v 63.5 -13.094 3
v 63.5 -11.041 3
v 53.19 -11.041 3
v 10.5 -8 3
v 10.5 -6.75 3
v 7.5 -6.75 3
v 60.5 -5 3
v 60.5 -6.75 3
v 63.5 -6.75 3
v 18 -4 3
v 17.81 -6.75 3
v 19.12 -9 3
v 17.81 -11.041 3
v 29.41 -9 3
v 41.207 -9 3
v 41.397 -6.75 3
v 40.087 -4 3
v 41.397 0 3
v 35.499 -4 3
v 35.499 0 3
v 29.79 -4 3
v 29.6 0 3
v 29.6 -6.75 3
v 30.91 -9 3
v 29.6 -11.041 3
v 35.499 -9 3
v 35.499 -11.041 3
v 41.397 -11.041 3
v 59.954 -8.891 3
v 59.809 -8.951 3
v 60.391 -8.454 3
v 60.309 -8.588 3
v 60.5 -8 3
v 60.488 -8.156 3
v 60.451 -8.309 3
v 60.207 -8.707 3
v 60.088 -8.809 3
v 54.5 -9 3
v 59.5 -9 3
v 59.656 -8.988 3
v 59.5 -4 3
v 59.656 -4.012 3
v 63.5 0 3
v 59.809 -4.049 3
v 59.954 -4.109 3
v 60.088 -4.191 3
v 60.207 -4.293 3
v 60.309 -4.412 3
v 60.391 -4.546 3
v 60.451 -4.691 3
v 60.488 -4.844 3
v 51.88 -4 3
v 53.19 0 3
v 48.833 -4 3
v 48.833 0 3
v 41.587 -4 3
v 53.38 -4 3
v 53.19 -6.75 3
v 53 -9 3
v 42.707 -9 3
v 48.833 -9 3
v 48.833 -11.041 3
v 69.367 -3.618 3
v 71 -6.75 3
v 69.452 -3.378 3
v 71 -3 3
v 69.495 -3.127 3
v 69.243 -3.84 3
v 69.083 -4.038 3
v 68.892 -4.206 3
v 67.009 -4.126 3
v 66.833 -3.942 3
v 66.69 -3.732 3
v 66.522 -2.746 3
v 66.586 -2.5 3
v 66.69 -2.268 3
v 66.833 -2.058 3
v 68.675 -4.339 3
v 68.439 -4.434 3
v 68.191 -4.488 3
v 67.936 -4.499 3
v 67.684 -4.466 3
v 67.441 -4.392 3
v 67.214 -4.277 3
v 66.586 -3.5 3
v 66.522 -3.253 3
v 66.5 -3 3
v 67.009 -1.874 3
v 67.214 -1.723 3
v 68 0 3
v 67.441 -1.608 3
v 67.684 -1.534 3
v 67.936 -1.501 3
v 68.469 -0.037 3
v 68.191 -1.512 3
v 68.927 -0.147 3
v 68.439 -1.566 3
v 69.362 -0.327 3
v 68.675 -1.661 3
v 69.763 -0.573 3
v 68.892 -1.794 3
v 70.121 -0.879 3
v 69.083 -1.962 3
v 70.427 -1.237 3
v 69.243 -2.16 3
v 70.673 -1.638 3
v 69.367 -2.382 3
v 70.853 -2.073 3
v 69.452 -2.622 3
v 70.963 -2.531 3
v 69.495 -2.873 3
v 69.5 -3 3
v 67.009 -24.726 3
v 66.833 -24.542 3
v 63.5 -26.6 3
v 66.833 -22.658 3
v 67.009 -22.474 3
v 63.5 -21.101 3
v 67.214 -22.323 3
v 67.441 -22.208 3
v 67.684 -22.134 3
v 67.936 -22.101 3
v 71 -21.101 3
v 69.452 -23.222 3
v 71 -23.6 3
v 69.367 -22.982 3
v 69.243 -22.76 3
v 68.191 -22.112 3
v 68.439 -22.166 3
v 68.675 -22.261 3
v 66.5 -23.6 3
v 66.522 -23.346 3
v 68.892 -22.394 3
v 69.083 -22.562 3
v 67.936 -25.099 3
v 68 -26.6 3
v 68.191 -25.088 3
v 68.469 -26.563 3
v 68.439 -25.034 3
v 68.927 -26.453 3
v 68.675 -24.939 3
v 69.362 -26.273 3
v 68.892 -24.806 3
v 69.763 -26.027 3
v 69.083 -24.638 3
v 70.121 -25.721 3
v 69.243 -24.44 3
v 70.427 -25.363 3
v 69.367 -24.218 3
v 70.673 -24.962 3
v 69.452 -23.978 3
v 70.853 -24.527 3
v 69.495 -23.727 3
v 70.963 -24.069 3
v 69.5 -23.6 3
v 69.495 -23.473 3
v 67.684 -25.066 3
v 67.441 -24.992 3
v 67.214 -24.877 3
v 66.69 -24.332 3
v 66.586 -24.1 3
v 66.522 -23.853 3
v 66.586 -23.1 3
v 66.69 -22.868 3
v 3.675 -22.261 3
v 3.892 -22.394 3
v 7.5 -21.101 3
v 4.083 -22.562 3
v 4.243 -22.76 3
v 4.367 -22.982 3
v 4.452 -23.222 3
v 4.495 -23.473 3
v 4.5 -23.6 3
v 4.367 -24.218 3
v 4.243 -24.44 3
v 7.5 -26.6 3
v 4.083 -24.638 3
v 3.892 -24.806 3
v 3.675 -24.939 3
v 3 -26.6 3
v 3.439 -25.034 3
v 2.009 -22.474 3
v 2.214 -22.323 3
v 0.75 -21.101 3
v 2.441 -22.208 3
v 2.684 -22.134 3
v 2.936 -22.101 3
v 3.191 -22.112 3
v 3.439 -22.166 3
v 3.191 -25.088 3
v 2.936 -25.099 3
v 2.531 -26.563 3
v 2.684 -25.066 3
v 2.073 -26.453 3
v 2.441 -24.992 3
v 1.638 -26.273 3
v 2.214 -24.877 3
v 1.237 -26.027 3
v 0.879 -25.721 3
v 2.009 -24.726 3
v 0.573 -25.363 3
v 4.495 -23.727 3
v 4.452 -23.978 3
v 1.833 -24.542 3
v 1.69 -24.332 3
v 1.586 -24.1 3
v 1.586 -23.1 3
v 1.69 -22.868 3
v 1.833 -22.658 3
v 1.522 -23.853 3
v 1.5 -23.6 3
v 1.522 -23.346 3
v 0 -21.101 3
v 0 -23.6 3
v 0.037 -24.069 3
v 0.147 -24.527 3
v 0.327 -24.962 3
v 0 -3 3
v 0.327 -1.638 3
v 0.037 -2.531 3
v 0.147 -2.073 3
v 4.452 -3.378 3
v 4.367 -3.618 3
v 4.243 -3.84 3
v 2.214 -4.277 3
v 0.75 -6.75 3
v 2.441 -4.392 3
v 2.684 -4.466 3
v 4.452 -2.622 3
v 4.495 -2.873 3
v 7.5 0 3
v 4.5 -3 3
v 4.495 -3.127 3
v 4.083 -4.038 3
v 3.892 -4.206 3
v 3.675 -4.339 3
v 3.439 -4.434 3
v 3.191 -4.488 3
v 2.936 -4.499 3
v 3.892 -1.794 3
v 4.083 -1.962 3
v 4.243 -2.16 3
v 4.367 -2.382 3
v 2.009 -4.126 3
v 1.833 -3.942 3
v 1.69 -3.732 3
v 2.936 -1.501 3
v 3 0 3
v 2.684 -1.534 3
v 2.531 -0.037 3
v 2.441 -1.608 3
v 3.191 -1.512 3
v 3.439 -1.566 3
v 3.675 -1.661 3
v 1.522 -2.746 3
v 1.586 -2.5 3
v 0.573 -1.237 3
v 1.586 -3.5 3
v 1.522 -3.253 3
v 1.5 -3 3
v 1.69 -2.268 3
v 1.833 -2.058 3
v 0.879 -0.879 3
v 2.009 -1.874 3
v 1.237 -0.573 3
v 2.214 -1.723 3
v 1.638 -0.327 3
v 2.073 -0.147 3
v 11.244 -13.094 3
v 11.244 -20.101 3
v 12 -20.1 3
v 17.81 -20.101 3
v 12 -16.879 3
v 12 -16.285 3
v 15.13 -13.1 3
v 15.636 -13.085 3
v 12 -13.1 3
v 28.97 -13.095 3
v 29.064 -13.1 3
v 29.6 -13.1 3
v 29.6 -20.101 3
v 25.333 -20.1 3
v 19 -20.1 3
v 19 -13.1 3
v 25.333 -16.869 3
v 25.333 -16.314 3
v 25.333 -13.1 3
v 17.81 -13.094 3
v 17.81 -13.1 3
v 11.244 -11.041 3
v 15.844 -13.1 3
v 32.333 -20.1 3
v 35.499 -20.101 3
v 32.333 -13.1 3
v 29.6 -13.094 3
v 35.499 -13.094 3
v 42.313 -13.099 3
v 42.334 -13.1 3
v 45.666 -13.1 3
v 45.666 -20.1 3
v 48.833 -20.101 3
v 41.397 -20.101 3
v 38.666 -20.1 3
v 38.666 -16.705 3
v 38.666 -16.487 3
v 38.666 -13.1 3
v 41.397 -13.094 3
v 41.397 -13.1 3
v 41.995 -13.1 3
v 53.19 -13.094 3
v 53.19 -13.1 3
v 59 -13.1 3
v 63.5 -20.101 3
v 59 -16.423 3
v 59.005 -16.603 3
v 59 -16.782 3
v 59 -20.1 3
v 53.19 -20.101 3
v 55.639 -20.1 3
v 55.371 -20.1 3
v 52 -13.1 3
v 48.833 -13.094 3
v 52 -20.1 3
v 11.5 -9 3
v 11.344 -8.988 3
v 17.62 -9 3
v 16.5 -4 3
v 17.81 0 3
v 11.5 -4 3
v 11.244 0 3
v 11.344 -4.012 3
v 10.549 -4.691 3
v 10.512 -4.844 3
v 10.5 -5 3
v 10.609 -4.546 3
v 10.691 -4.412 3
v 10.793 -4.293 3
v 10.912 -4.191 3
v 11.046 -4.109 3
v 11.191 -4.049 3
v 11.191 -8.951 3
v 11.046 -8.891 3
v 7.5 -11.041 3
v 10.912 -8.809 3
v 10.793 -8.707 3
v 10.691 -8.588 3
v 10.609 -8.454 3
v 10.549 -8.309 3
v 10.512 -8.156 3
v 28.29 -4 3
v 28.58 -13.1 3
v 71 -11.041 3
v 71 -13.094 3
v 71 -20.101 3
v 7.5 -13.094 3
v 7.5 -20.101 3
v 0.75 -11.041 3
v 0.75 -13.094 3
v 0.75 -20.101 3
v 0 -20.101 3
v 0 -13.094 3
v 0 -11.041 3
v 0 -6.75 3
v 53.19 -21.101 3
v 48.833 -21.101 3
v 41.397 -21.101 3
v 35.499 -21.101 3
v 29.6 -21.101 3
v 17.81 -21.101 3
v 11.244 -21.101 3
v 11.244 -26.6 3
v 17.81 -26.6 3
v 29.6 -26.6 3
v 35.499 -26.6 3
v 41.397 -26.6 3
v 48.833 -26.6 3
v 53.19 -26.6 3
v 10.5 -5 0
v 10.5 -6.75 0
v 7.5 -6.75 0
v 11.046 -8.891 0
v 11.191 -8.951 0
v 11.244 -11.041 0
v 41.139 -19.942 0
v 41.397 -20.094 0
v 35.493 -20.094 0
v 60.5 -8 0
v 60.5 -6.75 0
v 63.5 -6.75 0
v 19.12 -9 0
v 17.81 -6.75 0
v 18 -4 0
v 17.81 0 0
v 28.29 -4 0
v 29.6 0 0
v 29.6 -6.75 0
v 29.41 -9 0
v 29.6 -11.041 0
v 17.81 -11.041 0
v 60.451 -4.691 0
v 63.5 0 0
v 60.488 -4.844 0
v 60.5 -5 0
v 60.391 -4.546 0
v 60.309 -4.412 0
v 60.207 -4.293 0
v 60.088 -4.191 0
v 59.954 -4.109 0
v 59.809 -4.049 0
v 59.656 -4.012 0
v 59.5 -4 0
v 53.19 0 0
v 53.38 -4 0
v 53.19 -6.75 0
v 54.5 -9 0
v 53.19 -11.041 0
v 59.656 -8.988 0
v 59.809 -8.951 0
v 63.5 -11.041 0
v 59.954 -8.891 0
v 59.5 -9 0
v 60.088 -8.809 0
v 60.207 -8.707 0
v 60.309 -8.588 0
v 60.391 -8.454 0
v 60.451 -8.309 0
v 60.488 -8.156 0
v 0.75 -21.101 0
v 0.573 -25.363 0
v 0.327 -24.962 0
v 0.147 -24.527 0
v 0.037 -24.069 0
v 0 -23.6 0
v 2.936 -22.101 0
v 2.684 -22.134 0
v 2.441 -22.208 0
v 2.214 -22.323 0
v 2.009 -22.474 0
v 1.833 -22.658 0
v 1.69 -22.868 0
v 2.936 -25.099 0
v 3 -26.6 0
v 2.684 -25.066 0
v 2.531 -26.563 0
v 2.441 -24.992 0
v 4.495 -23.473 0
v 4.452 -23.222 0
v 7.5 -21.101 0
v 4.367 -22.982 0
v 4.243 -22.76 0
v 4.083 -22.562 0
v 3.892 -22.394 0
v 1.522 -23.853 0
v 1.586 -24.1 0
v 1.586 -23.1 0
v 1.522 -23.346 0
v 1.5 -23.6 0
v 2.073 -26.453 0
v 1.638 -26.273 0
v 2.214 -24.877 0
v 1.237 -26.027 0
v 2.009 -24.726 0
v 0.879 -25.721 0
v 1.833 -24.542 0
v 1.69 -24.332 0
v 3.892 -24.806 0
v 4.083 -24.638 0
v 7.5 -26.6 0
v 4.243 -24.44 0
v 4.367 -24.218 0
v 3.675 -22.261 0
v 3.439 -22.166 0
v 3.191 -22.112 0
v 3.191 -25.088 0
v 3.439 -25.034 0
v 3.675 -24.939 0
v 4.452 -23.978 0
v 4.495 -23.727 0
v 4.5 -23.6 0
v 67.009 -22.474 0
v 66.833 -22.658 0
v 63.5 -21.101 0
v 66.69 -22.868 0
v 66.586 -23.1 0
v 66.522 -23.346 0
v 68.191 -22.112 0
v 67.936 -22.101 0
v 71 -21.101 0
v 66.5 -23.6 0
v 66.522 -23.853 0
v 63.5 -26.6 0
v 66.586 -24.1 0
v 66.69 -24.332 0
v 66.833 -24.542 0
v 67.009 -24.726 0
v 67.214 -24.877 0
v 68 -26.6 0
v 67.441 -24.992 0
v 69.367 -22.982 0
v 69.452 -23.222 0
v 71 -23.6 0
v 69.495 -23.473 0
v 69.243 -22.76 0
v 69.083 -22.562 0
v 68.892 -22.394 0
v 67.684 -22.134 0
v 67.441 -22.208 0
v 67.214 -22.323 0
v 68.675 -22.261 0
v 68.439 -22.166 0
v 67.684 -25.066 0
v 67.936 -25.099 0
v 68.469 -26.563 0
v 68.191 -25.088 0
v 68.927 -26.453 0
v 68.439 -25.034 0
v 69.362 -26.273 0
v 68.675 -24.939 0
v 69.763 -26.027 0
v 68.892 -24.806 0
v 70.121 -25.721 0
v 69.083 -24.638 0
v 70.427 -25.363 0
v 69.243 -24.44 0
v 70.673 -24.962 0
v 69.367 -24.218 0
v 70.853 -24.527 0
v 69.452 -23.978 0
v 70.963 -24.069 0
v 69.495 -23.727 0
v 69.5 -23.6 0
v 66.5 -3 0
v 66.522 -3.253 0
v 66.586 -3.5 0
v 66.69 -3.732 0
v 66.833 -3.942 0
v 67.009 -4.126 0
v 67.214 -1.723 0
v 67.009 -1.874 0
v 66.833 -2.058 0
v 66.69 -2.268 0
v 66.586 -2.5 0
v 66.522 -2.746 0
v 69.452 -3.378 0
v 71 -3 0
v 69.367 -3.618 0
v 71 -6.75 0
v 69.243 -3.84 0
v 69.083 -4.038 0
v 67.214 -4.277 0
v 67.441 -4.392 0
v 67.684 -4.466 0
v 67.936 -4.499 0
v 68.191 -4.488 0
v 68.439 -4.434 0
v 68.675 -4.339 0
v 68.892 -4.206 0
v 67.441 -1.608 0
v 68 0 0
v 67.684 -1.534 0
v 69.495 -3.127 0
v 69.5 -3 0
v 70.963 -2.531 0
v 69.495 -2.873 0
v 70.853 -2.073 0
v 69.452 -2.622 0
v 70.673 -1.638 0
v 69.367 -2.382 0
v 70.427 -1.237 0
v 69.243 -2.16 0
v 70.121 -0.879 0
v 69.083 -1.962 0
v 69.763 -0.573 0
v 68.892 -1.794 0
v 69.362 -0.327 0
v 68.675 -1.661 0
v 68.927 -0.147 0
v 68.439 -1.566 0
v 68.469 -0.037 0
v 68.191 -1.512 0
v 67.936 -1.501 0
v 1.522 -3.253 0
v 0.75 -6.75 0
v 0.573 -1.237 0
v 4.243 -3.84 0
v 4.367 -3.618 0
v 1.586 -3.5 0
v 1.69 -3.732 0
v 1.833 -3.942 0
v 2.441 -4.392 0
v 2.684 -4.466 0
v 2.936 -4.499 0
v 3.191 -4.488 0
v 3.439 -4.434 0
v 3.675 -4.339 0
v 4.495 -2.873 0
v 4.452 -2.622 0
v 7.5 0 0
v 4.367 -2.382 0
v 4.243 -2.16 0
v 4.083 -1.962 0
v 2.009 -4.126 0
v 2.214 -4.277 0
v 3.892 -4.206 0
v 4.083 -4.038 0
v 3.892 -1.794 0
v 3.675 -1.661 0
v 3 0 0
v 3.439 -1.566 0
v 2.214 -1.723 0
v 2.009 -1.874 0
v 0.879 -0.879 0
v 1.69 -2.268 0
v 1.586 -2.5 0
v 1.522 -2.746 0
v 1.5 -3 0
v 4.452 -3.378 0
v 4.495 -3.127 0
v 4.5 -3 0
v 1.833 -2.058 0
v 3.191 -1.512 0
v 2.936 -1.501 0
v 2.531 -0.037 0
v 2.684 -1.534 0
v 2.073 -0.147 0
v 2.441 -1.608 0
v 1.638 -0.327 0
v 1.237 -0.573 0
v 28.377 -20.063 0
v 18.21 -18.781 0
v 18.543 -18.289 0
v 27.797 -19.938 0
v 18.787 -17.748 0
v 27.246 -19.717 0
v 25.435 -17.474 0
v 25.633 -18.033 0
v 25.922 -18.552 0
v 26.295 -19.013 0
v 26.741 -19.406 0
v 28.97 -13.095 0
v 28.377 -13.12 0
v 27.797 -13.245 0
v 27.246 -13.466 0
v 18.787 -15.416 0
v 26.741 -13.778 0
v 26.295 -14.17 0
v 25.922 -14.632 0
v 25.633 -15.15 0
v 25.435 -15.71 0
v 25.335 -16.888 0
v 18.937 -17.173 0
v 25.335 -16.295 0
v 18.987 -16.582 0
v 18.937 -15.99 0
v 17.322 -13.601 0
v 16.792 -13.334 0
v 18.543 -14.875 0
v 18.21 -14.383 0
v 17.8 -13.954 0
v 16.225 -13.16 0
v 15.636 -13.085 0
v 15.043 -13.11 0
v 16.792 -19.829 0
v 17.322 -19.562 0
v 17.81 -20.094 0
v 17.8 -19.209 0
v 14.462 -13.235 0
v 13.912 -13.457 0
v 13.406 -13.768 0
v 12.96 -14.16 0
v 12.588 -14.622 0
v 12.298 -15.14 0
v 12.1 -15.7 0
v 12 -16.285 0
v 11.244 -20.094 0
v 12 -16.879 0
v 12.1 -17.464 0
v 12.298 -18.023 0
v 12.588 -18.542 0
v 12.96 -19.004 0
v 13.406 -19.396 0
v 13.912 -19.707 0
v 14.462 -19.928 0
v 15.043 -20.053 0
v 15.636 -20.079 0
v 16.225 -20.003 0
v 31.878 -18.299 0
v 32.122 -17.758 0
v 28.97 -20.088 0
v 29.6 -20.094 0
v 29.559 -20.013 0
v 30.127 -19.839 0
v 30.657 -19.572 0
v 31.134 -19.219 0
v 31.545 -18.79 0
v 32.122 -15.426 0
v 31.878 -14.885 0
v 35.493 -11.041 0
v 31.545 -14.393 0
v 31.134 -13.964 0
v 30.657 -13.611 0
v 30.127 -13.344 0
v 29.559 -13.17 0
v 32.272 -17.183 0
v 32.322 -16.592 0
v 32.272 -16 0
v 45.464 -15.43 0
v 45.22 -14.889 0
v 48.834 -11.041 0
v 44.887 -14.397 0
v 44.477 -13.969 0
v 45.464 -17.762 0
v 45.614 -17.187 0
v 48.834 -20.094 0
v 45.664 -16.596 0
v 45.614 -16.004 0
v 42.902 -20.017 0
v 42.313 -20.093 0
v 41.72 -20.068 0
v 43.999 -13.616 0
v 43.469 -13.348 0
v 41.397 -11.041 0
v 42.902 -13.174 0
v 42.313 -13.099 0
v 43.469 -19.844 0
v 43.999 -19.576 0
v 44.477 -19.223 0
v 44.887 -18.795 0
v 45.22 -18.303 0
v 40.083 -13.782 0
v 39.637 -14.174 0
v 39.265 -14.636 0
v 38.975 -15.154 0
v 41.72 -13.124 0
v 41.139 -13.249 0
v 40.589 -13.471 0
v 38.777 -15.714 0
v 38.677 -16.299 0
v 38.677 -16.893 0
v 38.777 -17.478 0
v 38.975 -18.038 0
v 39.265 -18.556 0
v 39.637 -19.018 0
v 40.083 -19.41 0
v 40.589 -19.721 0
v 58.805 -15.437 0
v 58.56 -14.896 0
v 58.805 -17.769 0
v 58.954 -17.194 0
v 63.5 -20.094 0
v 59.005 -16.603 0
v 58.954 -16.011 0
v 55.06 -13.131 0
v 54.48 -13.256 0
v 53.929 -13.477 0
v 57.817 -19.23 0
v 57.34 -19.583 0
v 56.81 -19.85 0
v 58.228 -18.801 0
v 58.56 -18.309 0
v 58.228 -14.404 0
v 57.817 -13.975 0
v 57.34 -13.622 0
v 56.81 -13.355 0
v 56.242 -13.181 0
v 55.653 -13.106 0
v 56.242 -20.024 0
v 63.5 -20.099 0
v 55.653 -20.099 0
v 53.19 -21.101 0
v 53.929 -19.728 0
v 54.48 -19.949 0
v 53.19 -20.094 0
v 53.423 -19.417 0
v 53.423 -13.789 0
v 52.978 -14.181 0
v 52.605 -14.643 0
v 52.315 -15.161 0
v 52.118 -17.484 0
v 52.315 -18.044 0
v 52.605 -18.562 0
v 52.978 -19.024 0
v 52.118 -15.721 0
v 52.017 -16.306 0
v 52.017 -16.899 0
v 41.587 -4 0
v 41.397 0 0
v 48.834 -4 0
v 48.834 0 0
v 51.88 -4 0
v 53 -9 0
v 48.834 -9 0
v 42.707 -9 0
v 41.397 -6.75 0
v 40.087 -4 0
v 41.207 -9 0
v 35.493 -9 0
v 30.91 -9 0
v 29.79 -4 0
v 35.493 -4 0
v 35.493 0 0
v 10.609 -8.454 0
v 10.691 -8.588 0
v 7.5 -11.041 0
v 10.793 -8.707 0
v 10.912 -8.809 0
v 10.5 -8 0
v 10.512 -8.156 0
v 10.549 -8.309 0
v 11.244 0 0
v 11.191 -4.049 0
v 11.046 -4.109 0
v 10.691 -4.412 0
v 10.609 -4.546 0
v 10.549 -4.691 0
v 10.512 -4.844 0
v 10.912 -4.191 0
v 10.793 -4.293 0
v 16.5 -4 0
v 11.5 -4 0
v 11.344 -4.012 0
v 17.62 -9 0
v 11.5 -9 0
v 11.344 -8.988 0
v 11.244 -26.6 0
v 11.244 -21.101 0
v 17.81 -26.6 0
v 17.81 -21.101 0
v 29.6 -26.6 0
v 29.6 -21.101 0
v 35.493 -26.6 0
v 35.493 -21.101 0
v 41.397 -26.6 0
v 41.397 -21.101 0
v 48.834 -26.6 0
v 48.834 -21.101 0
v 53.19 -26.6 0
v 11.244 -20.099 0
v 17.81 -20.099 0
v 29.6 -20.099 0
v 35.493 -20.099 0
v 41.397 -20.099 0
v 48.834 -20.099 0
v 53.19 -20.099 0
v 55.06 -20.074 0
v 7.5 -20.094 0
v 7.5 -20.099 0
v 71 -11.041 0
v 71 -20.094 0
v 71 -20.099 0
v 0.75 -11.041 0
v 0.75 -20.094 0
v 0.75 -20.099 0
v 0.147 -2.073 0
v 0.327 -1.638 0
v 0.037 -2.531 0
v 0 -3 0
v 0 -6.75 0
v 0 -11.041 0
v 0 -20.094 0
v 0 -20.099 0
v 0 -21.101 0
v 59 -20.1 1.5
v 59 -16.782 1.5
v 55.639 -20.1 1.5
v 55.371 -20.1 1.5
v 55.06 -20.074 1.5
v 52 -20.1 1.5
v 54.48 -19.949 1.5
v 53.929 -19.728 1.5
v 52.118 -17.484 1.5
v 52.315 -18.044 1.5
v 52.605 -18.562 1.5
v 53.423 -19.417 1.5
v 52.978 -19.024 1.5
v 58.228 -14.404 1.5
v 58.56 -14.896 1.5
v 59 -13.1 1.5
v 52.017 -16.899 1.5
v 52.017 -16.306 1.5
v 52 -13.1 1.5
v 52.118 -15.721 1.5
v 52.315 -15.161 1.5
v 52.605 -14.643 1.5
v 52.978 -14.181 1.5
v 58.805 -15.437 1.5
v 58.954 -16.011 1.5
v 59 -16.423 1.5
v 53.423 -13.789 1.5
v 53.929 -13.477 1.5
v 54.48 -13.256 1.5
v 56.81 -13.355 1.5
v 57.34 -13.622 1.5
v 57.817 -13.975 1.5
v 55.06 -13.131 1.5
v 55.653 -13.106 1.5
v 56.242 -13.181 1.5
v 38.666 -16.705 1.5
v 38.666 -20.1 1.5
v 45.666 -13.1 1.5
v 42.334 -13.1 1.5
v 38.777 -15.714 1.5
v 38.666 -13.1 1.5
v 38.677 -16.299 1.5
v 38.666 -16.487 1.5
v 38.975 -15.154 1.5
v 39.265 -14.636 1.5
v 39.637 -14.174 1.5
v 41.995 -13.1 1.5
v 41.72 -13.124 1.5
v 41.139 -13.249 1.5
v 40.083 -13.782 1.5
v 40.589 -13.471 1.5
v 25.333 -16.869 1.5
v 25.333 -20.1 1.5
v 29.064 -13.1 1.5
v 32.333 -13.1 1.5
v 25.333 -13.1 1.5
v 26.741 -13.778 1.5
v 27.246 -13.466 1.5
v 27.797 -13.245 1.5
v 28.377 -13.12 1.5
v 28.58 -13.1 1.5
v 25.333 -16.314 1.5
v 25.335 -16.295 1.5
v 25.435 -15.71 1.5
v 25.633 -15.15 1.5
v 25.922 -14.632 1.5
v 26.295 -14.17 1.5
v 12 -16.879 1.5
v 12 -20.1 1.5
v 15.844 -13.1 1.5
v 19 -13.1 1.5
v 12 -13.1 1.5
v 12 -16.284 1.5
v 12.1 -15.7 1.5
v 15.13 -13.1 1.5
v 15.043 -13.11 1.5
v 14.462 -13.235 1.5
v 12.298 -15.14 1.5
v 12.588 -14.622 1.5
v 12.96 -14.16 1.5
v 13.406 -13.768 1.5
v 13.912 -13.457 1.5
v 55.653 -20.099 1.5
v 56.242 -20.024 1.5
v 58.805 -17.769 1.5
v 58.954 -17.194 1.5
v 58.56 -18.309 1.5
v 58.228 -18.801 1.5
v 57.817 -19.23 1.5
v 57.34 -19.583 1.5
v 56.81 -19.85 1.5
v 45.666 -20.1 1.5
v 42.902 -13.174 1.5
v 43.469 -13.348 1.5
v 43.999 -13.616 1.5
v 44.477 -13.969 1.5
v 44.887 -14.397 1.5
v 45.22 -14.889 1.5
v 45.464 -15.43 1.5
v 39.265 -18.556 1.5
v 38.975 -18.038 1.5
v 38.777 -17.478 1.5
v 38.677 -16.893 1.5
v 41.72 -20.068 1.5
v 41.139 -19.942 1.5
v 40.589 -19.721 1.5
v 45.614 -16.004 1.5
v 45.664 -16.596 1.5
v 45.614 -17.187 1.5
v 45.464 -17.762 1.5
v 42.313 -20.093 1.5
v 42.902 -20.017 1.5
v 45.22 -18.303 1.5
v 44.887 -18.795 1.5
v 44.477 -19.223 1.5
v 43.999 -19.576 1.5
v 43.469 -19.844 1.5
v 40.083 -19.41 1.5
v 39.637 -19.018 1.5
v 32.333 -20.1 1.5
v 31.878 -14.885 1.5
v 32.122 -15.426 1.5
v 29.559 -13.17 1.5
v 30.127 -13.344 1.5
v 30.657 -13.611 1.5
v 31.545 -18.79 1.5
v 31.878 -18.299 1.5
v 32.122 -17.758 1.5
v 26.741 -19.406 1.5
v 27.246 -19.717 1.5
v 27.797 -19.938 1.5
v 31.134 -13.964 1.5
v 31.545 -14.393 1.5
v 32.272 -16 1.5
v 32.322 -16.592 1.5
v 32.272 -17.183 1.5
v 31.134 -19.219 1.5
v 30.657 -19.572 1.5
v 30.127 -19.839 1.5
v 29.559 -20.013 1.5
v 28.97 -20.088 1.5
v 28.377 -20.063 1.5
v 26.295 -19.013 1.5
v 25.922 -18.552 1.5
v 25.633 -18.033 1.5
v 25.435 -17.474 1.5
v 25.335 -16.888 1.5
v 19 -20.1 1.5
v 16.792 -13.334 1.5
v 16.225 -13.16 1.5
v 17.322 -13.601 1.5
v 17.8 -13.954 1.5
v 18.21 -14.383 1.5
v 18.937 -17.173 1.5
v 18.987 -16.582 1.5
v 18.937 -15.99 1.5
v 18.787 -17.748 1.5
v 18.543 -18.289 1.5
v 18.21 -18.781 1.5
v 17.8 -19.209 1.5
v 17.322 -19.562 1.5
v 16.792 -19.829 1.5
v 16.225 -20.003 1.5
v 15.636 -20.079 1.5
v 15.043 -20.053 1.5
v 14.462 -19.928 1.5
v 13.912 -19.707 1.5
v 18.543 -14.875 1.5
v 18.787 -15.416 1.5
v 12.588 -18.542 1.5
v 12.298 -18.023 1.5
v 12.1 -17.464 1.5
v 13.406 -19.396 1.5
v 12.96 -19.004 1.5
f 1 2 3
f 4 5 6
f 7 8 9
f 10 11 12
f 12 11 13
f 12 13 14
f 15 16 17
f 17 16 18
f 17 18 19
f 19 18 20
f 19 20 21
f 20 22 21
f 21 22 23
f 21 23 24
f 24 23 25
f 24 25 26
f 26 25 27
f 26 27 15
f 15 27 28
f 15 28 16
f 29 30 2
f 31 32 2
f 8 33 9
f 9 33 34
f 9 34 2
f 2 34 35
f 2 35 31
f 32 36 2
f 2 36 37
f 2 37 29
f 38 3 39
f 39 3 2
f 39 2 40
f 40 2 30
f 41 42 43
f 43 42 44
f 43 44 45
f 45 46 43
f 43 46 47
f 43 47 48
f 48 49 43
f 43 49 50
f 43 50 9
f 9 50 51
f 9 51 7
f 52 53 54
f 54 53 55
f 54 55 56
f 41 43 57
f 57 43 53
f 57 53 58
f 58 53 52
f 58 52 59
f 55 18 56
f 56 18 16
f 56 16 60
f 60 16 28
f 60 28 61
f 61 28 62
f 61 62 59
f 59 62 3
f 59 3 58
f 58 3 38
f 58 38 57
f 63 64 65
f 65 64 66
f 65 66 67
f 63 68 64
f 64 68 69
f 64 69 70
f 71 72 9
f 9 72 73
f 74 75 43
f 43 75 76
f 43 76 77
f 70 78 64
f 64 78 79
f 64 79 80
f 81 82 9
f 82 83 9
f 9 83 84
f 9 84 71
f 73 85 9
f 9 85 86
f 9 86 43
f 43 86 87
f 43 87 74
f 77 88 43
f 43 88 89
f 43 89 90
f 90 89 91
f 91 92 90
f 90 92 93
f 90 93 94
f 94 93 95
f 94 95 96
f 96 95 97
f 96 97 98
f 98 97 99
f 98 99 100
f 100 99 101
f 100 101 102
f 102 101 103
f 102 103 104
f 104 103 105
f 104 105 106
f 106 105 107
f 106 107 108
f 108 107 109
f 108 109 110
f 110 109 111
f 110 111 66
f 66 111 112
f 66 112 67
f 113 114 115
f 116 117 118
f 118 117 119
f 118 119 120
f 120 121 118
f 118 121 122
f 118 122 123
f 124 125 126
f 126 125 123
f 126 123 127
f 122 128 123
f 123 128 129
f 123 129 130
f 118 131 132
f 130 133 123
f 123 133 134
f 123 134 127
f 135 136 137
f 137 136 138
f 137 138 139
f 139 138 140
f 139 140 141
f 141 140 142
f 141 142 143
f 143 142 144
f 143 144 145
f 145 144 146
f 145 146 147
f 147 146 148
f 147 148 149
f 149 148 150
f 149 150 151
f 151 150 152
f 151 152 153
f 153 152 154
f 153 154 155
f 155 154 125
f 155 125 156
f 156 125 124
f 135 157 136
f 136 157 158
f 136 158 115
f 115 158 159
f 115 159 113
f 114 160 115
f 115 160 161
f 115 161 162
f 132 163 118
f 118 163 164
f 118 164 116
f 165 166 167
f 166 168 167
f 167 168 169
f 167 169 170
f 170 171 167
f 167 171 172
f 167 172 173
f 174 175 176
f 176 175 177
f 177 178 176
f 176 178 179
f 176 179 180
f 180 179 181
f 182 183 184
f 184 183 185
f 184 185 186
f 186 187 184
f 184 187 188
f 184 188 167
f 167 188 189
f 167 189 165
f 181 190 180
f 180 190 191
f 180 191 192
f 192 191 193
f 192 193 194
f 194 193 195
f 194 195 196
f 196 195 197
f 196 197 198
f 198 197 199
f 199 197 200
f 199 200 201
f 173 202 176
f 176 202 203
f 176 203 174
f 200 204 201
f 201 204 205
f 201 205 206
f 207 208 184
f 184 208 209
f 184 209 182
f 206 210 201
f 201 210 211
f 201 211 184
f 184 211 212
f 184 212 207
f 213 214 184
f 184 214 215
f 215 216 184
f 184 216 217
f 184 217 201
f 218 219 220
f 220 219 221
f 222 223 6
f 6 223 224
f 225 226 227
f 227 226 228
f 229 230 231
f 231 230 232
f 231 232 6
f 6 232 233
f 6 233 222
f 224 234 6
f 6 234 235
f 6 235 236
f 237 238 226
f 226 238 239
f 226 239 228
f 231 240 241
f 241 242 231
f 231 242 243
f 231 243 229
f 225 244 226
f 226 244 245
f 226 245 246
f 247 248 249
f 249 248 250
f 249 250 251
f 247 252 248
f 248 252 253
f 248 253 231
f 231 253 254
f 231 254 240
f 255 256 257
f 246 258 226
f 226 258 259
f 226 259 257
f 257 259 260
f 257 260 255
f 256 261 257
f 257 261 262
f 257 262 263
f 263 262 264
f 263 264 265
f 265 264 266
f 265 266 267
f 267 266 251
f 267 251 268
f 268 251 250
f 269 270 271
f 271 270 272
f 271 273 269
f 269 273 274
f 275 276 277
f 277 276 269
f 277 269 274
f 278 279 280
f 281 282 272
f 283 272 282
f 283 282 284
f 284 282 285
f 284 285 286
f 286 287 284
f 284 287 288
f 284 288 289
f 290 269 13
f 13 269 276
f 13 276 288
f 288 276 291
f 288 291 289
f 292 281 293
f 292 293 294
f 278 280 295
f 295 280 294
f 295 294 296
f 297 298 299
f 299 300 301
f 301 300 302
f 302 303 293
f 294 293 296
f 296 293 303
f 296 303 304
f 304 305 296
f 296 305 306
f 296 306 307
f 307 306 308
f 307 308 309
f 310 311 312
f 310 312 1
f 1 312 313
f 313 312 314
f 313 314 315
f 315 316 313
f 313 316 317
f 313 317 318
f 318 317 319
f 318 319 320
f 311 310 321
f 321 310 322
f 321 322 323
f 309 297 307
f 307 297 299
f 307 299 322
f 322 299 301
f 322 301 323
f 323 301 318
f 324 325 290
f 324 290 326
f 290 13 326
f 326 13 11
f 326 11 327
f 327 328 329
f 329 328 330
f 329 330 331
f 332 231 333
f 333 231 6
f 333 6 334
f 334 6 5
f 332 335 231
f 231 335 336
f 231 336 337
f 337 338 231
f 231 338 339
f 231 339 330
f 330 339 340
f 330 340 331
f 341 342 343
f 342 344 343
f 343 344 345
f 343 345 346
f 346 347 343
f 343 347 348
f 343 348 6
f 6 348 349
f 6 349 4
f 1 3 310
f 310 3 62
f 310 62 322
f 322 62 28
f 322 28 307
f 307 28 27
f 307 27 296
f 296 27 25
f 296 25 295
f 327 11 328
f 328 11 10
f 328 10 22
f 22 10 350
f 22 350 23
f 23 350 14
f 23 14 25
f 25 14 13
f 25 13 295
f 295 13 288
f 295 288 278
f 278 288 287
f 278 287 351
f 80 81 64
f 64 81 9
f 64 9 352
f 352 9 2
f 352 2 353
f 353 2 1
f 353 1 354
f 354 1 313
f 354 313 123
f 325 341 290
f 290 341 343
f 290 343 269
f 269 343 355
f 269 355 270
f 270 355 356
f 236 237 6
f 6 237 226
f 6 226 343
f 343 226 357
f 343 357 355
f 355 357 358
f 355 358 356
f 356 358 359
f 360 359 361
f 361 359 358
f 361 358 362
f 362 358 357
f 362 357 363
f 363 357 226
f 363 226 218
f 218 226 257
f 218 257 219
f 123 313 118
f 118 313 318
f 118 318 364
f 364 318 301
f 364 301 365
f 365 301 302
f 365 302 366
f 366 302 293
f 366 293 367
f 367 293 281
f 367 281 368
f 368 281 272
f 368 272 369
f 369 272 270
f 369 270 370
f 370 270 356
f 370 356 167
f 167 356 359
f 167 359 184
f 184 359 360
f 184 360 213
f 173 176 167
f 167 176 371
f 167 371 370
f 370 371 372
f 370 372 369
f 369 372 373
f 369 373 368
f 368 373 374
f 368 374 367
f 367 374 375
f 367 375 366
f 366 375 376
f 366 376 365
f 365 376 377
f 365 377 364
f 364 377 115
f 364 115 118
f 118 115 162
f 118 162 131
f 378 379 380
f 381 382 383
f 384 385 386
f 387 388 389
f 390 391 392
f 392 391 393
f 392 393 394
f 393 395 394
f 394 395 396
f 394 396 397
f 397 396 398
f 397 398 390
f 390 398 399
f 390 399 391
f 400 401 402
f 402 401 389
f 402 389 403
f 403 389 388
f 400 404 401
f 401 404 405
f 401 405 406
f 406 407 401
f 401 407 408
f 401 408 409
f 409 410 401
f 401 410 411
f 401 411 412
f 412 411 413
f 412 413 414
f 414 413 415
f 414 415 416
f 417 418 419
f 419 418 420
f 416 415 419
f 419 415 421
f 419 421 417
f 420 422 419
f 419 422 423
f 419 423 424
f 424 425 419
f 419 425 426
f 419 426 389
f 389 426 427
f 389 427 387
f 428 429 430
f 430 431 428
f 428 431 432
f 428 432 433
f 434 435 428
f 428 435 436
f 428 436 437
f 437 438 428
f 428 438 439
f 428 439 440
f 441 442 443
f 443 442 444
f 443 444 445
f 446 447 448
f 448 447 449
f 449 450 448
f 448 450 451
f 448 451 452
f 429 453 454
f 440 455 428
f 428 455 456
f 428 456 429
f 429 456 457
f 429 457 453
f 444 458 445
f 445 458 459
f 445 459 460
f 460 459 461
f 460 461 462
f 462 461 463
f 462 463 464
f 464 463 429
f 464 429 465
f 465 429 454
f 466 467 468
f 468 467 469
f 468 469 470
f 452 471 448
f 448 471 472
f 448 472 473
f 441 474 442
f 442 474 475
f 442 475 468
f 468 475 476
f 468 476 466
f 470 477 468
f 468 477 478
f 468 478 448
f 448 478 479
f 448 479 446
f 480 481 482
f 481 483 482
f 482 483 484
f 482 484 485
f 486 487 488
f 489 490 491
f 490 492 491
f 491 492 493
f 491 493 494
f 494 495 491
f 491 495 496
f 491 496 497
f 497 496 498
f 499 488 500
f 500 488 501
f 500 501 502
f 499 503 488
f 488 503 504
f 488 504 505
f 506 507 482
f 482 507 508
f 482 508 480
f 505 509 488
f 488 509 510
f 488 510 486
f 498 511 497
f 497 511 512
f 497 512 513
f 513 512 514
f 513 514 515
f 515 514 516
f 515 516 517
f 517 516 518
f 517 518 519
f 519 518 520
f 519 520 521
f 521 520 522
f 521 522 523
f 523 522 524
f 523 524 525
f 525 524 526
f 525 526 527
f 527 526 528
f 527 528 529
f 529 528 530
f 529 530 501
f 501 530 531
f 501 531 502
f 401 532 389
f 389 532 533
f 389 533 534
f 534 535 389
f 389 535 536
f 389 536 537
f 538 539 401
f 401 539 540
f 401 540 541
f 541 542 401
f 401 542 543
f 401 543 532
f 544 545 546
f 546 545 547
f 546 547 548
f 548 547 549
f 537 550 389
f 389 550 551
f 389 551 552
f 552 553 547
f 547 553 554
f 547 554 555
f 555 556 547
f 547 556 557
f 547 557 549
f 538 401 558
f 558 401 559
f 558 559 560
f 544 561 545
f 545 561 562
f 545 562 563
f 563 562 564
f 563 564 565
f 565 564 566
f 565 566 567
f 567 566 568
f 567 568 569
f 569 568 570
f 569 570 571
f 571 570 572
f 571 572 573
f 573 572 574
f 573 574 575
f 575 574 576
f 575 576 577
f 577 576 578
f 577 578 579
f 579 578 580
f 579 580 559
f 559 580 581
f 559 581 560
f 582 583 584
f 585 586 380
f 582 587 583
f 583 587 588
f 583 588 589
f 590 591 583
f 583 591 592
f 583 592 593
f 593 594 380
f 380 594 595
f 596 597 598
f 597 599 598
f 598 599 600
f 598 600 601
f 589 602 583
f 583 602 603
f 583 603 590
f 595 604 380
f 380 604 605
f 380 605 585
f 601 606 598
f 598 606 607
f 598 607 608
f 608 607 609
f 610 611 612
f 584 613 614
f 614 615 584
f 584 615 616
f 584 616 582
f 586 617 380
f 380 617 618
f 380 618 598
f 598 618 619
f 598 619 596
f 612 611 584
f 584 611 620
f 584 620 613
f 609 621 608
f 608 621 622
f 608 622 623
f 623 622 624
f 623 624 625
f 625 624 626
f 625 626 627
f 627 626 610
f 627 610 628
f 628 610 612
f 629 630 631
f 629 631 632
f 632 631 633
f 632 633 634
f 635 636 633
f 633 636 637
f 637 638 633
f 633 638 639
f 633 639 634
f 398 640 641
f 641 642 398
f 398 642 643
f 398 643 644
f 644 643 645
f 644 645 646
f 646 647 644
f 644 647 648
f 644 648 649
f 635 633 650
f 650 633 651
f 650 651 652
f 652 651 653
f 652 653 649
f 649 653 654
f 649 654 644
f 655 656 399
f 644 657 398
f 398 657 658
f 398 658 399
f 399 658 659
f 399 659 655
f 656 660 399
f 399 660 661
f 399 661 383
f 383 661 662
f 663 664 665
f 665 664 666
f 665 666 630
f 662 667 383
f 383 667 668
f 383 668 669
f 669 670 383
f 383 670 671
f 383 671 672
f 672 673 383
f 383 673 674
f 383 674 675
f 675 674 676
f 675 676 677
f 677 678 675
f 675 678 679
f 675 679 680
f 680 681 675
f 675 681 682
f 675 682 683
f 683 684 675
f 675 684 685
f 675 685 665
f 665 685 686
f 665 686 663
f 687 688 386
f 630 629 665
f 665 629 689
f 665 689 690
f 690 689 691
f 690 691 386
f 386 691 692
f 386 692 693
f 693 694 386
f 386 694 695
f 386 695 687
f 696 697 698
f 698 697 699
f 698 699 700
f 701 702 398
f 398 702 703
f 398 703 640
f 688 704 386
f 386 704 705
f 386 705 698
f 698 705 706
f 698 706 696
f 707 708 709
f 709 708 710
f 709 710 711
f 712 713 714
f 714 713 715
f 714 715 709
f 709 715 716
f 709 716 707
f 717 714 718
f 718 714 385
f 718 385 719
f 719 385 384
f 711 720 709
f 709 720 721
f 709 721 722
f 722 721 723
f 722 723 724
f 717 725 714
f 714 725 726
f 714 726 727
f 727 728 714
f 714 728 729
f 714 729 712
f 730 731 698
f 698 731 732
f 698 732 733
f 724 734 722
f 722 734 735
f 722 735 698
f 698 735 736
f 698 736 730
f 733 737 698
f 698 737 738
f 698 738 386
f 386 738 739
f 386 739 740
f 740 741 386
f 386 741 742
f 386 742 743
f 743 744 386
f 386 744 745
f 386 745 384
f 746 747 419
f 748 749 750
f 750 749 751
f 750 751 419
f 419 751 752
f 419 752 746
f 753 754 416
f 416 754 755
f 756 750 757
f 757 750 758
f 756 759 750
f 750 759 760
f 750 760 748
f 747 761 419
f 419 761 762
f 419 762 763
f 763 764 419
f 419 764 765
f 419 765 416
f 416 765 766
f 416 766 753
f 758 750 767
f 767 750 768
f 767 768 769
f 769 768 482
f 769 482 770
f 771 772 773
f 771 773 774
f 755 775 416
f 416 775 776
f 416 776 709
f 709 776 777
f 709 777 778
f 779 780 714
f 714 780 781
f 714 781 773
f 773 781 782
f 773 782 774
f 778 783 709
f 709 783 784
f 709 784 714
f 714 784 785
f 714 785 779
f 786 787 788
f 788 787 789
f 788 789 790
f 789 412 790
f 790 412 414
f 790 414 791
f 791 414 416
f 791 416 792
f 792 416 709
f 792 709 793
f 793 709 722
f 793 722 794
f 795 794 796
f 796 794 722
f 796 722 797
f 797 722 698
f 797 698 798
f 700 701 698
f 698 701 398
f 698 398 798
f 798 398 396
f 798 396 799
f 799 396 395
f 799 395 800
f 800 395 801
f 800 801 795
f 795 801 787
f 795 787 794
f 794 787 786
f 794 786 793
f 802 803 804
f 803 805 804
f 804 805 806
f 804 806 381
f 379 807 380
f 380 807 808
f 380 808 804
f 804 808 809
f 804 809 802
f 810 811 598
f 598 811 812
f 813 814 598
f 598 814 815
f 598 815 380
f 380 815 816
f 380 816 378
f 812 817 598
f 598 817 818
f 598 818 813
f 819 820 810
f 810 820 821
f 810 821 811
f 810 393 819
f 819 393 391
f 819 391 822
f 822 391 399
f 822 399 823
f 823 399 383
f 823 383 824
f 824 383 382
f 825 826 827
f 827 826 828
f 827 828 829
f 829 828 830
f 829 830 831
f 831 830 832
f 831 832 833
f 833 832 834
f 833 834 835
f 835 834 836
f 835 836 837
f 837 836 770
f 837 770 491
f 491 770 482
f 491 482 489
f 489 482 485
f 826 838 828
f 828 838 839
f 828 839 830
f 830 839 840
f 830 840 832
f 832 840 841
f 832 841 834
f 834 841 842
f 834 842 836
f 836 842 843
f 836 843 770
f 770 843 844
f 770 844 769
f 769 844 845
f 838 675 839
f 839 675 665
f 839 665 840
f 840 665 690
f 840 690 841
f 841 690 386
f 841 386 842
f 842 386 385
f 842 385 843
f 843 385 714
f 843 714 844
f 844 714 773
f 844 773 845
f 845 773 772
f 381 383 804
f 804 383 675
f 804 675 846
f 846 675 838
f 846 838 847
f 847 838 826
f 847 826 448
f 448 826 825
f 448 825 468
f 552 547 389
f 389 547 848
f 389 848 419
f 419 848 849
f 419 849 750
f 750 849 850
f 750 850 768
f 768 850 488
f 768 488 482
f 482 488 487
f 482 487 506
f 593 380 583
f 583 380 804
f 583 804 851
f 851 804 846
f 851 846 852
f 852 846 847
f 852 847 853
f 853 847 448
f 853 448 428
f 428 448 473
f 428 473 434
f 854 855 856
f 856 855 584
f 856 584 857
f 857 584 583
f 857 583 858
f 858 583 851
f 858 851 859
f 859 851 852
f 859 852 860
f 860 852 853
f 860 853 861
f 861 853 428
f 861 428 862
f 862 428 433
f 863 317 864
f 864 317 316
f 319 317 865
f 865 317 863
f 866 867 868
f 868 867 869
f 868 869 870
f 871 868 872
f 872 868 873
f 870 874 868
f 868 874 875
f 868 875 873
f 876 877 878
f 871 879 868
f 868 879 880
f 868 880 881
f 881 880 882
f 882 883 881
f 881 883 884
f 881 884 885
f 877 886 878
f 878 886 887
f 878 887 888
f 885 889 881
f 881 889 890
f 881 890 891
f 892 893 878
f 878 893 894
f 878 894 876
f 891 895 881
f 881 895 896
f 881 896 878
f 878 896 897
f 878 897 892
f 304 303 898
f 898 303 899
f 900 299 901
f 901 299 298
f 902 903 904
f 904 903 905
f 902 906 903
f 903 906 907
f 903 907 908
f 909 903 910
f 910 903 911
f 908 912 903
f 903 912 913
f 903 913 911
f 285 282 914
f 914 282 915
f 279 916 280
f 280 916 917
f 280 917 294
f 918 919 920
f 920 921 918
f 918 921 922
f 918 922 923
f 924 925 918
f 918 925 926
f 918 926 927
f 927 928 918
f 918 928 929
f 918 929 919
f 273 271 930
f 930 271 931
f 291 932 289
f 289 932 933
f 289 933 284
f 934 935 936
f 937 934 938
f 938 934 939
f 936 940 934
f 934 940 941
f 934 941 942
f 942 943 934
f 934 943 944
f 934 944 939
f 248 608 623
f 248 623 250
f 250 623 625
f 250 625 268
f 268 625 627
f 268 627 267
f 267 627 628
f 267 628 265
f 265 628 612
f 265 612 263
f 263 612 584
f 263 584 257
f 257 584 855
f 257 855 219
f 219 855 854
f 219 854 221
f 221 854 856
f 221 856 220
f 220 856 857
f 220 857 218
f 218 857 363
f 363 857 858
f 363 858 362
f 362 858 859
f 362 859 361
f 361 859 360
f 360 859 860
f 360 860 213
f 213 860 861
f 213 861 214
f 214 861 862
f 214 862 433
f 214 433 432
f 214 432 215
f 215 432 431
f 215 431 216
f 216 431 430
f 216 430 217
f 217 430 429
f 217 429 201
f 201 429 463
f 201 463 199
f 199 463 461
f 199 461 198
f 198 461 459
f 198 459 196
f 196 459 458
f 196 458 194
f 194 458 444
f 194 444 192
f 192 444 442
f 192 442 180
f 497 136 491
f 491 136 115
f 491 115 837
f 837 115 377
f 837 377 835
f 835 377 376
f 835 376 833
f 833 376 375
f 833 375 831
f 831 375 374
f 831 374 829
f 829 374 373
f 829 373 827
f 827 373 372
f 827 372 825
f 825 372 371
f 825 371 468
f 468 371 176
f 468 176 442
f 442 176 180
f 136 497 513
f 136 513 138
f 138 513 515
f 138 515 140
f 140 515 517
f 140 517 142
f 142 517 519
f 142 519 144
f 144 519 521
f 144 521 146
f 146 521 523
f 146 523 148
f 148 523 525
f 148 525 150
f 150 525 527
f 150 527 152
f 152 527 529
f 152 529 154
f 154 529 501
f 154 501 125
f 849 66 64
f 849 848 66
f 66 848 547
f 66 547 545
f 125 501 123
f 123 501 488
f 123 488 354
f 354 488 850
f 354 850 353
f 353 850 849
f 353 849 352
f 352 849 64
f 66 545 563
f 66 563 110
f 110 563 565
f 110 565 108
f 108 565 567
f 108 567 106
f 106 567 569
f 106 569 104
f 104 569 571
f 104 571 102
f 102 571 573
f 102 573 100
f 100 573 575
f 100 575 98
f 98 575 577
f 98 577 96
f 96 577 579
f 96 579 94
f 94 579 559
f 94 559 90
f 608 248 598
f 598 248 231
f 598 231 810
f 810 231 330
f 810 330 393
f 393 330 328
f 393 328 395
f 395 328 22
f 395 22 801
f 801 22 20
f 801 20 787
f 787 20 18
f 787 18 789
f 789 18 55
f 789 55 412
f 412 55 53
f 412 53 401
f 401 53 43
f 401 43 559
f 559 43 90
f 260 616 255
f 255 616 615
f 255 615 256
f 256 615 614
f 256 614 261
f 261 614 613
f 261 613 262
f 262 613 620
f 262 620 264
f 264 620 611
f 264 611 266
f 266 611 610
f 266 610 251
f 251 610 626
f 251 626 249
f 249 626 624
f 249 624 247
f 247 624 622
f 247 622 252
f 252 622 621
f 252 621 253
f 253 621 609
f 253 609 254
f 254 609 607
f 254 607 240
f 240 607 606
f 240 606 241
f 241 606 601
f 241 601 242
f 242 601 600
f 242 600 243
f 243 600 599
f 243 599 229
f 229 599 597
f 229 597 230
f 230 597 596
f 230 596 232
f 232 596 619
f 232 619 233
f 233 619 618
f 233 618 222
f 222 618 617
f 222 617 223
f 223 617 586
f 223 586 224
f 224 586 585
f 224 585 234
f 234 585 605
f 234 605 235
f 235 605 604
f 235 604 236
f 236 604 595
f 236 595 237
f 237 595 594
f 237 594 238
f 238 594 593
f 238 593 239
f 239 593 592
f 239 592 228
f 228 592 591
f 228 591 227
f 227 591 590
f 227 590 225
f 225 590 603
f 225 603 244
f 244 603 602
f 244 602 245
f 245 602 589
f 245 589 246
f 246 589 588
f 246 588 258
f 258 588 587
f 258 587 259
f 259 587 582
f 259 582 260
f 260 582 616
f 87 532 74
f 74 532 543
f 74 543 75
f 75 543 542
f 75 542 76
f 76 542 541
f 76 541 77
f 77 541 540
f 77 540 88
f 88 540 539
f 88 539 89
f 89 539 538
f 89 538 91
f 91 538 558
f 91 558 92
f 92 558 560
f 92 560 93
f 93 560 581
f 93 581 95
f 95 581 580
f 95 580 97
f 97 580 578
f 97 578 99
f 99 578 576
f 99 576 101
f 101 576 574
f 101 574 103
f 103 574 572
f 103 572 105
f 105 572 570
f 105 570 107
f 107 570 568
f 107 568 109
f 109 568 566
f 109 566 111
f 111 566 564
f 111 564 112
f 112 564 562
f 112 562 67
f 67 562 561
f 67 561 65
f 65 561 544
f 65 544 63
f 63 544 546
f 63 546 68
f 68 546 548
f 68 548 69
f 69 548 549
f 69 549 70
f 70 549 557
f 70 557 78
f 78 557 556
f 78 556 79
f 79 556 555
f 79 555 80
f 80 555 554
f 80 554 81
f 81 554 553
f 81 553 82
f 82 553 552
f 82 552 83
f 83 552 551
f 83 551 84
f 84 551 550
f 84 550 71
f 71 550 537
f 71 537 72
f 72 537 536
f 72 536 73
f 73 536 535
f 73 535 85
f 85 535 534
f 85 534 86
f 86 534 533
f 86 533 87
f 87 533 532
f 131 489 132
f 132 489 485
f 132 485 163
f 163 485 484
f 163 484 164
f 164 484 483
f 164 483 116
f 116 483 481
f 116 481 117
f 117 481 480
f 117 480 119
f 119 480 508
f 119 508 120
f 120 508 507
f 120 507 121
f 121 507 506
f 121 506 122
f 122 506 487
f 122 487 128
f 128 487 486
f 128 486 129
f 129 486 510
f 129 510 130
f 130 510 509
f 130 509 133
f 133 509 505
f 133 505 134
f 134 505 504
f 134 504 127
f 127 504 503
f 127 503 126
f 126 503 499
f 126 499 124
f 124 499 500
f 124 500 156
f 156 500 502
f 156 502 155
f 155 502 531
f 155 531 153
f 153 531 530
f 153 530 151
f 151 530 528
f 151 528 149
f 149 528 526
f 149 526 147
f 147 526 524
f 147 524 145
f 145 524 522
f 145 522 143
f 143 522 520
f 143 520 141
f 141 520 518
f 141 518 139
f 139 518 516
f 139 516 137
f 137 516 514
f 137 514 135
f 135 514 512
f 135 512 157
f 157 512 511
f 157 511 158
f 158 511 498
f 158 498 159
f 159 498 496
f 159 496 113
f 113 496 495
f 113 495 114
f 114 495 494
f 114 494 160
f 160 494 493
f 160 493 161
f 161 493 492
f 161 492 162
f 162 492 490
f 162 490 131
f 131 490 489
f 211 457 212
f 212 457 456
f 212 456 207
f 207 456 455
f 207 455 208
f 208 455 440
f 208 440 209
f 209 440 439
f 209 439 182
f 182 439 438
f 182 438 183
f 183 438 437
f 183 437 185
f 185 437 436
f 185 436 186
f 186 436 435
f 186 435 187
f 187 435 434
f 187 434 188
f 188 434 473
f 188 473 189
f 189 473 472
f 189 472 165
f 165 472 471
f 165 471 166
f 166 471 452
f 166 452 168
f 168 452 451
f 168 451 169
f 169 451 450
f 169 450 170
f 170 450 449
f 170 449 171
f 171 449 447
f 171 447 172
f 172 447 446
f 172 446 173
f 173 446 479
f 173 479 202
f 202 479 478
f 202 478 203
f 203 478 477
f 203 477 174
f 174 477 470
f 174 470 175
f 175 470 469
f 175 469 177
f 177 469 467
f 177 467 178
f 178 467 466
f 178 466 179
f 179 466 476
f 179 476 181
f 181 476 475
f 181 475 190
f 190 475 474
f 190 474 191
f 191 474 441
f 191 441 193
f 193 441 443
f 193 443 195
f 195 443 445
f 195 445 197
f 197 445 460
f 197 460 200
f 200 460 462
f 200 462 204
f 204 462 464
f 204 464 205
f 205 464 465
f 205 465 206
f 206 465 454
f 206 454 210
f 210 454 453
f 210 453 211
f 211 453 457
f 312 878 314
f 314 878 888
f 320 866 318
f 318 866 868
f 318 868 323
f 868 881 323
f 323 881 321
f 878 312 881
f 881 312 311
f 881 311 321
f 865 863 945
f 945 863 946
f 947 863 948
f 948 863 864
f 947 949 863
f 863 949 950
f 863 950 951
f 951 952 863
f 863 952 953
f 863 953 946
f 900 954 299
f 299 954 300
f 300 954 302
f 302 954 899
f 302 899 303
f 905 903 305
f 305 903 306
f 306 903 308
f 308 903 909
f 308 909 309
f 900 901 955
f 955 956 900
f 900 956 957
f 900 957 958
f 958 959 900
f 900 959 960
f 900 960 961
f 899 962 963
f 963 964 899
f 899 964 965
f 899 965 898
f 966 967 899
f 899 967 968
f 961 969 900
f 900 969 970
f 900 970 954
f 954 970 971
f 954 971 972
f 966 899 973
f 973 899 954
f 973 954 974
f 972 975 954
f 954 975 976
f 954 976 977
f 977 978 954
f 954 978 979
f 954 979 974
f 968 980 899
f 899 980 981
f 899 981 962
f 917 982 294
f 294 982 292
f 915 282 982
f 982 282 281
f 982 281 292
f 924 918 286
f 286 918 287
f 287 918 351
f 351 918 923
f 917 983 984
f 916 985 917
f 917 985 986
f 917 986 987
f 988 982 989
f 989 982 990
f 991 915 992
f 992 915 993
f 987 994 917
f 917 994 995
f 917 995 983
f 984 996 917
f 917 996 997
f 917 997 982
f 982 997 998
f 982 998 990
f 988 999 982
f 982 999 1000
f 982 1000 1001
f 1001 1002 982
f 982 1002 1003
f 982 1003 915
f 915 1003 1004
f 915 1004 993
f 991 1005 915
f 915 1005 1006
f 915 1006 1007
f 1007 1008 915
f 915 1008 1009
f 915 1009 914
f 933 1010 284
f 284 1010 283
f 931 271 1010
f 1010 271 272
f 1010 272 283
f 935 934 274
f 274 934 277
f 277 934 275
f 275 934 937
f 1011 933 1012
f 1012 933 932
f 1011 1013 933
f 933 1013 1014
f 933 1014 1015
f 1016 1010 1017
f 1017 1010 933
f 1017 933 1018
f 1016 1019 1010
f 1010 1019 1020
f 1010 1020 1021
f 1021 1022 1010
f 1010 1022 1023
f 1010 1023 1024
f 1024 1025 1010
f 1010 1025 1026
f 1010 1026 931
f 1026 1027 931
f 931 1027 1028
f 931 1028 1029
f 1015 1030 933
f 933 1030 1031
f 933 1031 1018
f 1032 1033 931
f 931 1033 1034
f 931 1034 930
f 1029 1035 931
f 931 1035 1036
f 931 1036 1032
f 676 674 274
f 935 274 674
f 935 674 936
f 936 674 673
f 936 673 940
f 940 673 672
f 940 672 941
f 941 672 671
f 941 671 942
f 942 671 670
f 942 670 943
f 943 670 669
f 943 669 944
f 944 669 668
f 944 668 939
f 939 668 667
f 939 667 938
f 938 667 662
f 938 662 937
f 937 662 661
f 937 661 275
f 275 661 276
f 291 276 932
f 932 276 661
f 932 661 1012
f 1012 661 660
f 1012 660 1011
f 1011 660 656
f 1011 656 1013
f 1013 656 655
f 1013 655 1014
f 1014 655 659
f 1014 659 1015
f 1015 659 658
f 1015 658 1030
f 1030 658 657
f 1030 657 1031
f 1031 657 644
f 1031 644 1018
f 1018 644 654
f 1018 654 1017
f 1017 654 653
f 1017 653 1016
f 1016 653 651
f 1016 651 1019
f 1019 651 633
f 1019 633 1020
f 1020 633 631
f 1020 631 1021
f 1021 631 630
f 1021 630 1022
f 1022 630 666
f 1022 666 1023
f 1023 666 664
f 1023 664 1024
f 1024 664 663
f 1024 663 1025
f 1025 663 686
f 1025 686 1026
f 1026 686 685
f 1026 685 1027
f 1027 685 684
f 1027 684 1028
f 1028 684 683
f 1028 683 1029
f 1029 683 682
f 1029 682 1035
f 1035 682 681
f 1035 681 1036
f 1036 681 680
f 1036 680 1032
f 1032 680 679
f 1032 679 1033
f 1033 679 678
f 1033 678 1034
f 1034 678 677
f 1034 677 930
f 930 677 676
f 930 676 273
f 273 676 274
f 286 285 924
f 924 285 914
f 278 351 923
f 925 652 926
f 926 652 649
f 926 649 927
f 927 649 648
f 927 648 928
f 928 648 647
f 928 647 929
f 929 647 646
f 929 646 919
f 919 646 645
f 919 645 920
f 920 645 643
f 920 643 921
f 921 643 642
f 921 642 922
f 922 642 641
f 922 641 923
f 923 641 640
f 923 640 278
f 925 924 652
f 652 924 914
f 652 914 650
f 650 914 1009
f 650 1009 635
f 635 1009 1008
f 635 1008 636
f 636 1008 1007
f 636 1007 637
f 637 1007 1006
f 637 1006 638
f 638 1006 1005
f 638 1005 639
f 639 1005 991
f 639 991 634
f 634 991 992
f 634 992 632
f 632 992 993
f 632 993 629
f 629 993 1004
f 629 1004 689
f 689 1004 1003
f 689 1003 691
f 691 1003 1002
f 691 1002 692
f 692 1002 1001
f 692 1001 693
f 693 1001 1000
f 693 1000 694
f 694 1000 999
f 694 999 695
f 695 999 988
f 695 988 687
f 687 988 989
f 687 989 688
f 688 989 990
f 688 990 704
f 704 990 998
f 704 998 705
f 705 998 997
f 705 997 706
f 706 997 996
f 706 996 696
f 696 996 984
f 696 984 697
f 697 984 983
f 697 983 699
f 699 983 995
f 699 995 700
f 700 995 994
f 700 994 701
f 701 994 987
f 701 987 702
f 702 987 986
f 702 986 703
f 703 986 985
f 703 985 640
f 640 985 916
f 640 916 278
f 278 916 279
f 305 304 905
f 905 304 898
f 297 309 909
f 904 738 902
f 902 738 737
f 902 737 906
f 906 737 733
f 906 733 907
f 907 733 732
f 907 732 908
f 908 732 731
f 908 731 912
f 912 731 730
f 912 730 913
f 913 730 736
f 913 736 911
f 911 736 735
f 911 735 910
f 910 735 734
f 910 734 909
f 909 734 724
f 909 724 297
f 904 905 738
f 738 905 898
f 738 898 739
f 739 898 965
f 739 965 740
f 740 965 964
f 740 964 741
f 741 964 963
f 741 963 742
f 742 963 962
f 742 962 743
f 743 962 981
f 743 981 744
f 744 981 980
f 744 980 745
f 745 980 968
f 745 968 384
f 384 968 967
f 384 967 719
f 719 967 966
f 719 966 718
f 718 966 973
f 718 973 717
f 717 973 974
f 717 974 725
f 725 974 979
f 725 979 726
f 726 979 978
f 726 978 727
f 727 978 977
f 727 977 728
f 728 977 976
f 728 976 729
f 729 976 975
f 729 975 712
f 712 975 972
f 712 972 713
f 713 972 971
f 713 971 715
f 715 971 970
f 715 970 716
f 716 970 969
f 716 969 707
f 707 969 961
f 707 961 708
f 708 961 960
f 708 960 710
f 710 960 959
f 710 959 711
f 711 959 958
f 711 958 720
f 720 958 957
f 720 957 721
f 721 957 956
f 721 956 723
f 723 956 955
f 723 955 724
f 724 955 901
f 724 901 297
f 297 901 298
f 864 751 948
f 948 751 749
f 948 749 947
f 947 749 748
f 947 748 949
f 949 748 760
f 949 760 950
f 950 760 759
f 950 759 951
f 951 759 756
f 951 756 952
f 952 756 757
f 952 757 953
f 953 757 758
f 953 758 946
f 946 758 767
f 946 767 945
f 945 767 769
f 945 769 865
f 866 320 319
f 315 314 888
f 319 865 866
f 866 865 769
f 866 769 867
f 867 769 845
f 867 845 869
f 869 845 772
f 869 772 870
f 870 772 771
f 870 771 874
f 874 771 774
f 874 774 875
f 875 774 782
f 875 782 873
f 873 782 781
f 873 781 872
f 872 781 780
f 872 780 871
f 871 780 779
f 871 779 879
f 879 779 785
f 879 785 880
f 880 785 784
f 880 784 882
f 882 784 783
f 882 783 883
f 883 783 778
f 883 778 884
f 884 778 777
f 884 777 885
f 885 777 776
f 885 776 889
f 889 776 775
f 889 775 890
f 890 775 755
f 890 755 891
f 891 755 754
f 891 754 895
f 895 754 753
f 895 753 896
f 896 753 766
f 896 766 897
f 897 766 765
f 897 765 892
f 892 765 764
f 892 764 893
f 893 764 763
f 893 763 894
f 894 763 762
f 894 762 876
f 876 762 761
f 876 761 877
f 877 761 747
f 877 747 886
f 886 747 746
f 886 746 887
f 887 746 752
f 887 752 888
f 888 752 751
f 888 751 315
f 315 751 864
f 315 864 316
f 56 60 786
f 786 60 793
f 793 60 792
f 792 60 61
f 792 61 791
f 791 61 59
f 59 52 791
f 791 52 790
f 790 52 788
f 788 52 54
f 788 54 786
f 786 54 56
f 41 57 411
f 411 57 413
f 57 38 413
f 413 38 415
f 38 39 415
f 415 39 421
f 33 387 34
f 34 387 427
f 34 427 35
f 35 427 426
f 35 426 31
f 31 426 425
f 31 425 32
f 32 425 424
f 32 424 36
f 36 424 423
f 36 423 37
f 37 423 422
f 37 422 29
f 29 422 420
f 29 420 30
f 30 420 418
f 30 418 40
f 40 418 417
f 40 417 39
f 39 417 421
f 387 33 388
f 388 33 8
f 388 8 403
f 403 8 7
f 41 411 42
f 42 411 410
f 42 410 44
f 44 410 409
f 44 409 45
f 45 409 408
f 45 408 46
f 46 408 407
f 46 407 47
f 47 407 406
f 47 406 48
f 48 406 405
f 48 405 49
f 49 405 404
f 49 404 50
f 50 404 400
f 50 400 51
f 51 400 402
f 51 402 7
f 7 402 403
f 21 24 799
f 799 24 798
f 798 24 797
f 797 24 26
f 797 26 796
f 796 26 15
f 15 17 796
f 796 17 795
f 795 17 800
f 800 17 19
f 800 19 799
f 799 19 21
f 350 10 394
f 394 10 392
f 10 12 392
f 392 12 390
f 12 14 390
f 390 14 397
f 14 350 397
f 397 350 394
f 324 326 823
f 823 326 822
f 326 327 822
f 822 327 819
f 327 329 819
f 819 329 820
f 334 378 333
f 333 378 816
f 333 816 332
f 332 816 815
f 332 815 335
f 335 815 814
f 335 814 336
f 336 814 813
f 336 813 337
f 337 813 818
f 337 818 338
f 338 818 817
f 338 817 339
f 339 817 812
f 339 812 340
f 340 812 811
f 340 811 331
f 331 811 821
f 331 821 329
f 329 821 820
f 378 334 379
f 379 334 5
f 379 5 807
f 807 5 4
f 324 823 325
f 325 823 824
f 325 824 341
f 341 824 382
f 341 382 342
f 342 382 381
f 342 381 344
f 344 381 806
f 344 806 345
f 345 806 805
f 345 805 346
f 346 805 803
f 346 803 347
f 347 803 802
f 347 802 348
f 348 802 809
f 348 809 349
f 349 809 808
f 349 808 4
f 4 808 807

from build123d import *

# Parameters (mm, degrees)
SKETCH_1_R          = 1.5
EXTRUDE_1_DEPTH     = 3
SKETCH_2_W          = 7
SKETCH_2_H          = 7
CUT_EXTRUDE_1_DEPTH = 1.5
SKETCH_3_R          = 3.5
CUT_EXTRUDE_2_DEPTH = 3
CUT_EXTRUDE_3_DEPTH = 3


with BuildPart() as part:
    # 草图1 → 凸台-拉伸1 (new body)
    with BuildSketch(Plane.XY):
        with BuildLine():
            Line((3, 0), (68, 0))
            ThreePointArc((68, 0), (70.121320344, -0.878679656), (71, -3))
            Line((71, -3), (71, -23.6))
            ThreePointArc((71, -23.6), (70.121320344, -25.721320344), (68, -26.6))
            Line((68, -26.6), (3, -26.6))
            ThreePointArc((3, -26.6), (0.878679656, -25.721320344), (0, -23.6))
            Line((0, -23.6), (0, -3))
            ThreePointArc((0, -3), (0.878679656, -0.878679656), (3, 0))
        make_face()
        with Locations((3, -3)):
            Circle(SKETCH_1_R, mode=Mode.SUBTRACT)
        with Locations((68, -3)):
            Circle(SKETCH_1_R, mode=Mode.SUBTRACT)
        with Locations((68, -23.6)):
            Circle(SKETCH_1_R, mode=Mode.SUBTRACT)
        with Locations((3, -23.6)):
            Circle(SKETCH_1_R, mode=Mode.SUBTRACT)
    extrude(amount=EXTRUDE_1_DEPTH)

    # 草图2 → 切除-拉伸1 (cut)
    with BuildSketch(Plane.XY.offset(3)):
        with Locations((15.5, -16.6)):
            Rectangle(SKETCH_2_W, SKETCH_2_H)
        with Locations((28.833, -16.6)):
            Rectangle(SKETCH_2_W, SKETCH_2_H)
        with Locations((42.166, -16.6)):
            Rectangle(SKETCH_2_W, SKETCH_2_H)
        with Locations((55.5, -16.6)):
            Rectangle(SKETCH_2_W, SKETCH_2_H)
    extrude(amount=-CUT_EXTRUDE_1_DEPTH, mode=Mode.SUBTRACT)

    # 草图3 → 切除-拉伸2 (cut)
    with BuildSketch(Plane.XY.offset(3)):
        with Locations((15.487336513, -16.581748308)):
            Circle(SKETCH_3_R)
        with Locations((28.821952613, -16.591607422)):
            Circle(SKETCH_3_R)
        with Locations((42.164313749, -16.595901173)):
            Circle(SKETCH_3_R)
        with Locations((55.50458657, -16.602564336)):
            Circle(SKETCH_3_R)
    extrude(amount=-CUT_EXTRUDE_2_DEPTH, mode=Mode.SUBTRACT)

    # 草图4 → 切除-拉伸3 (cut)
    with BuildSketch(Plane(origin=(0, 0, 0), x_dir=(-1, 0, 0), z_dir=(0, 0, -1))):
        Polygon((-41.586971982, -4), (-51.880305316, -4), (-53, -9), (-42.706666667, -9), align=None)
        with BuildLine():
            Line((-53.380305316, -4), (-59.5, -4))
            ThreePointArc((-59.5, -4), (-60.207106781, -4.292893219), (-60.5, -5))
            Line((-60.5, -5), (-60.5, -8))
            ThreePointArc((-60.5, -8), (-60.207106781, -8.707106781), (-59.5, -9))
            Line((-59.5, -9), (-54.5, -9))
            Line((-54.5, -9), (-53.380305316, -4))
        make_face()
        Polygon((-29.79, -4), (-40.086971982, -4), (-41.206666667, -9), (-30.909694684, -9), align=None)
        Polygon((-18, -4), (-28.29, -4), (-29.409694684, -9), (-19.119694684, -9), align=None)
        with BuildLine():
            Line((-11.5, -4), (-16.5, -4))
            Line((-16.5, -4), (-17.619694684, -9))
            Line((-17.619694684, -9), (-11.5, -9))
            ThreePointArc((-11.5, -9), (-10.792893219, -8.707106781), (-10.5, -8))
            Line((-10.5, -8), (-10.5, -5))
            ThreePointArc((-10.5, -5), (-10.792893219, -4.292893219), (-11.5, -4))
        make_face()
    extrude(amount=-CUT_EXTRUDE_3_DEPTH, mode=Mode.SUBTRACT)


solid = part.part
